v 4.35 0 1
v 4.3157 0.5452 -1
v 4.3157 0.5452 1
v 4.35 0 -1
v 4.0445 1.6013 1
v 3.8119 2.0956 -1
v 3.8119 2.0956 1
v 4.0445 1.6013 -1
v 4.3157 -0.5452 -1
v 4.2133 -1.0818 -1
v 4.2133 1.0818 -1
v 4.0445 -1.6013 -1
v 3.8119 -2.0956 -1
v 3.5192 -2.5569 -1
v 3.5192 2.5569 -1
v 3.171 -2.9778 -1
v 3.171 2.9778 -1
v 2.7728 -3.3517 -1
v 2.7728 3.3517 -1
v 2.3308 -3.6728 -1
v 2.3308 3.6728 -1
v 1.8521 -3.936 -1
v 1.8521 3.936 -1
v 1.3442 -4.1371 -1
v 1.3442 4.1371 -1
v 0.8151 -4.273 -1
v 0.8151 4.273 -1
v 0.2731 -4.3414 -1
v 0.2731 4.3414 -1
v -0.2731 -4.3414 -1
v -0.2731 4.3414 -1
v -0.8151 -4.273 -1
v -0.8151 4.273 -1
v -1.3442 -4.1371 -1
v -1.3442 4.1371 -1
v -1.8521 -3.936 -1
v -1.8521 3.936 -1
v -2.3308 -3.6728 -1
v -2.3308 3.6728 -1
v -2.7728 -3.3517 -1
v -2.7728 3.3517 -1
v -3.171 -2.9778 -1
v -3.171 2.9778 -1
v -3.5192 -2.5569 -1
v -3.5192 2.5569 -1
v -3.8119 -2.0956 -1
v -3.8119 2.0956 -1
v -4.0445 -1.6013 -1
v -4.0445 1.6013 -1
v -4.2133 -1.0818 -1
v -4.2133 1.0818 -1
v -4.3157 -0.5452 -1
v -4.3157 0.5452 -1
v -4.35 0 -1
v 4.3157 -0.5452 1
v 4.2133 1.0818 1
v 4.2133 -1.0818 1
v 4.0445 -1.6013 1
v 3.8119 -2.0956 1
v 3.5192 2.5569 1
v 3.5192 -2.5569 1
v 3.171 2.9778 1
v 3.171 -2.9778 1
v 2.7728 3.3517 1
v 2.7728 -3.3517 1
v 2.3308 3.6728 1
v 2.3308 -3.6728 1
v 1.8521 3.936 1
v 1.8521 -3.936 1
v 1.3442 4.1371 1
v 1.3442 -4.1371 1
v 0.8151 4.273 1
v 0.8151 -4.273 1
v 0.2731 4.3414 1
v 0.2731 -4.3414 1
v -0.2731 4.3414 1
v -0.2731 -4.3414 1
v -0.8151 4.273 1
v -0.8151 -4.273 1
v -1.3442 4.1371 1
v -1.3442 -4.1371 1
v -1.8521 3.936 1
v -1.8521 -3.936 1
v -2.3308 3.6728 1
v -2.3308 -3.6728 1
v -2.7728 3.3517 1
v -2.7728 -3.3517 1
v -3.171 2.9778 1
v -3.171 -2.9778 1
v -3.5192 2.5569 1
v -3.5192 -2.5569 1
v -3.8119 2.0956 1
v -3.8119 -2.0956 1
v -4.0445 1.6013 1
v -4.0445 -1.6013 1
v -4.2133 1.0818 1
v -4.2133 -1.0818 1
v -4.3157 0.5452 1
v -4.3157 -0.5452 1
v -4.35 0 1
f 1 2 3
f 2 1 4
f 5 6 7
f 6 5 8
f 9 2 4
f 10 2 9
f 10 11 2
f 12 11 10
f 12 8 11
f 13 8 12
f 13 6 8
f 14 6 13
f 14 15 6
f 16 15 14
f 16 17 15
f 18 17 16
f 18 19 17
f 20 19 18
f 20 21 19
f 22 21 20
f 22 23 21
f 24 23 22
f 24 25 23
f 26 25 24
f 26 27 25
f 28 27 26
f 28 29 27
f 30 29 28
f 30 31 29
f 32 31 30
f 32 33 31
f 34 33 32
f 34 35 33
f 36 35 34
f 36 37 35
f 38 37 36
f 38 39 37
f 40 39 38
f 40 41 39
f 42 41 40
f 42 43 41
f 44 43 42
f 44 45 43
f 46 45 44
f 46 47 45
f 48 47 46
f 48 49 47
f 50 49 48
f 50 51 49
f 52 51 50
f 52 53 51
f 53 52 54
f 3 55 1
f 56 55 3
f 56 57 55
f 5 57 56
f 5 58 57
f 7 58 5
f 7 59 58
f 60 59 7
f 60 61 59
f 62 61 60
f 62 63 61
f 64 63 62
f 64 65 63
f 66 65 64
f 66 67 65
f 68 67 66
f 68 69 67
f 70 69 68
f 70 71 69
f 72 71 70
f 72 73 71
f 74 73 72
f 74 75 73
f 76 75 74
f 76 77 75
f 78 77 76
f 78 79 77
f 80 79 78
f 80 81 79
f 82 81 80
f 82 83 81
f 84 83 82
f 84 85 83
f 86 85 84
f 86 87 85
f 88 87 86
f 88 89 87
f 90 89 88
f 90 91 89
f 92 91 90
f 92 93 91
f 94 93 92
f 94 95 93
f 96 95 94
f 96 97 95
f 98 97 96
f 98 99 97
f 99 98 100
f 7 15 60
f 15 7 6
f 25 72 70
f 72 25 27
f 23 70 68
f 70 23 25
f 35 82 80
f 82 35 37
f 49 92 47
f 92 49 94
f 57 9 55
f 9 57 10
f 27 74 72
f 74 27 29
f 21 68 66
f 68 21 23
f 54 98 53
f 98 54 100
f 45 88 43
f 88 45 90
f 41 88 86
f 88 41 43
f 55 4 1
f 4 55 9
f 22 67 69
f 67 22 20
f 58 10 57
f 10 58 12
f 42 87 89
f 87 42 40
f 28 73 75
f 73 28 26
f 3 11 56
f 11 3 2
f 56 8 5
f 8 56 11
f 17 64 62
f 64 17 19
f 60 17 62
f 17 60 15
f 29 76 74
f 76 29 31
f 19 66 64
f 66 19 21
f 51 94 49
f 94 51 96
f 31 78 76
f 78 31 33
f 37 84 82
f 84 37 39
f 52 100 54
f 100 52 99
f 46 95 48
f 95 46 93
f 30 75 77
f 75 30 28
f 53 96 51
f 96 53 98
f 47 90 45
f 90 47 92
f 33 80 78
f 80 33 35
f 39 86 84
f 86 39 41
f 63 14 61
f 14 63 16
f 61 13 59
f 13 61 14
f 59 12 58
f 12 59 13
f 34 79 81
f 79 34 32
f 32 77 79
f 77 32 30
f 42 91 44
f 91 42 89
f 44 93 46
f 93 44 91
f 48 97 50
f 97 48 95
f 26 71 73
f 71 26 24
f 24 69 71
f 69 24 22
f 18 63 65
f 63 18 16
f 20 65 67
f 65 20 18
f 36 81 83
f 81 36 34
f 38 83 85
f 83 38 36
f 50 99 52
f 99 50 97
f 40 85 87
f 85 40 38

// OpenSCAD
$fn = 50;


difference() {
	union() {
		translate(v = [0, 0, -1.0000000000]) {
			cylinder(h = 2, r = 4.3500000000);
		}
	}
	union() {
		translate(v = [0, 0, -100.0000000000]) {
			cylinder(h = 200, r = 0);
		}
	}
}
